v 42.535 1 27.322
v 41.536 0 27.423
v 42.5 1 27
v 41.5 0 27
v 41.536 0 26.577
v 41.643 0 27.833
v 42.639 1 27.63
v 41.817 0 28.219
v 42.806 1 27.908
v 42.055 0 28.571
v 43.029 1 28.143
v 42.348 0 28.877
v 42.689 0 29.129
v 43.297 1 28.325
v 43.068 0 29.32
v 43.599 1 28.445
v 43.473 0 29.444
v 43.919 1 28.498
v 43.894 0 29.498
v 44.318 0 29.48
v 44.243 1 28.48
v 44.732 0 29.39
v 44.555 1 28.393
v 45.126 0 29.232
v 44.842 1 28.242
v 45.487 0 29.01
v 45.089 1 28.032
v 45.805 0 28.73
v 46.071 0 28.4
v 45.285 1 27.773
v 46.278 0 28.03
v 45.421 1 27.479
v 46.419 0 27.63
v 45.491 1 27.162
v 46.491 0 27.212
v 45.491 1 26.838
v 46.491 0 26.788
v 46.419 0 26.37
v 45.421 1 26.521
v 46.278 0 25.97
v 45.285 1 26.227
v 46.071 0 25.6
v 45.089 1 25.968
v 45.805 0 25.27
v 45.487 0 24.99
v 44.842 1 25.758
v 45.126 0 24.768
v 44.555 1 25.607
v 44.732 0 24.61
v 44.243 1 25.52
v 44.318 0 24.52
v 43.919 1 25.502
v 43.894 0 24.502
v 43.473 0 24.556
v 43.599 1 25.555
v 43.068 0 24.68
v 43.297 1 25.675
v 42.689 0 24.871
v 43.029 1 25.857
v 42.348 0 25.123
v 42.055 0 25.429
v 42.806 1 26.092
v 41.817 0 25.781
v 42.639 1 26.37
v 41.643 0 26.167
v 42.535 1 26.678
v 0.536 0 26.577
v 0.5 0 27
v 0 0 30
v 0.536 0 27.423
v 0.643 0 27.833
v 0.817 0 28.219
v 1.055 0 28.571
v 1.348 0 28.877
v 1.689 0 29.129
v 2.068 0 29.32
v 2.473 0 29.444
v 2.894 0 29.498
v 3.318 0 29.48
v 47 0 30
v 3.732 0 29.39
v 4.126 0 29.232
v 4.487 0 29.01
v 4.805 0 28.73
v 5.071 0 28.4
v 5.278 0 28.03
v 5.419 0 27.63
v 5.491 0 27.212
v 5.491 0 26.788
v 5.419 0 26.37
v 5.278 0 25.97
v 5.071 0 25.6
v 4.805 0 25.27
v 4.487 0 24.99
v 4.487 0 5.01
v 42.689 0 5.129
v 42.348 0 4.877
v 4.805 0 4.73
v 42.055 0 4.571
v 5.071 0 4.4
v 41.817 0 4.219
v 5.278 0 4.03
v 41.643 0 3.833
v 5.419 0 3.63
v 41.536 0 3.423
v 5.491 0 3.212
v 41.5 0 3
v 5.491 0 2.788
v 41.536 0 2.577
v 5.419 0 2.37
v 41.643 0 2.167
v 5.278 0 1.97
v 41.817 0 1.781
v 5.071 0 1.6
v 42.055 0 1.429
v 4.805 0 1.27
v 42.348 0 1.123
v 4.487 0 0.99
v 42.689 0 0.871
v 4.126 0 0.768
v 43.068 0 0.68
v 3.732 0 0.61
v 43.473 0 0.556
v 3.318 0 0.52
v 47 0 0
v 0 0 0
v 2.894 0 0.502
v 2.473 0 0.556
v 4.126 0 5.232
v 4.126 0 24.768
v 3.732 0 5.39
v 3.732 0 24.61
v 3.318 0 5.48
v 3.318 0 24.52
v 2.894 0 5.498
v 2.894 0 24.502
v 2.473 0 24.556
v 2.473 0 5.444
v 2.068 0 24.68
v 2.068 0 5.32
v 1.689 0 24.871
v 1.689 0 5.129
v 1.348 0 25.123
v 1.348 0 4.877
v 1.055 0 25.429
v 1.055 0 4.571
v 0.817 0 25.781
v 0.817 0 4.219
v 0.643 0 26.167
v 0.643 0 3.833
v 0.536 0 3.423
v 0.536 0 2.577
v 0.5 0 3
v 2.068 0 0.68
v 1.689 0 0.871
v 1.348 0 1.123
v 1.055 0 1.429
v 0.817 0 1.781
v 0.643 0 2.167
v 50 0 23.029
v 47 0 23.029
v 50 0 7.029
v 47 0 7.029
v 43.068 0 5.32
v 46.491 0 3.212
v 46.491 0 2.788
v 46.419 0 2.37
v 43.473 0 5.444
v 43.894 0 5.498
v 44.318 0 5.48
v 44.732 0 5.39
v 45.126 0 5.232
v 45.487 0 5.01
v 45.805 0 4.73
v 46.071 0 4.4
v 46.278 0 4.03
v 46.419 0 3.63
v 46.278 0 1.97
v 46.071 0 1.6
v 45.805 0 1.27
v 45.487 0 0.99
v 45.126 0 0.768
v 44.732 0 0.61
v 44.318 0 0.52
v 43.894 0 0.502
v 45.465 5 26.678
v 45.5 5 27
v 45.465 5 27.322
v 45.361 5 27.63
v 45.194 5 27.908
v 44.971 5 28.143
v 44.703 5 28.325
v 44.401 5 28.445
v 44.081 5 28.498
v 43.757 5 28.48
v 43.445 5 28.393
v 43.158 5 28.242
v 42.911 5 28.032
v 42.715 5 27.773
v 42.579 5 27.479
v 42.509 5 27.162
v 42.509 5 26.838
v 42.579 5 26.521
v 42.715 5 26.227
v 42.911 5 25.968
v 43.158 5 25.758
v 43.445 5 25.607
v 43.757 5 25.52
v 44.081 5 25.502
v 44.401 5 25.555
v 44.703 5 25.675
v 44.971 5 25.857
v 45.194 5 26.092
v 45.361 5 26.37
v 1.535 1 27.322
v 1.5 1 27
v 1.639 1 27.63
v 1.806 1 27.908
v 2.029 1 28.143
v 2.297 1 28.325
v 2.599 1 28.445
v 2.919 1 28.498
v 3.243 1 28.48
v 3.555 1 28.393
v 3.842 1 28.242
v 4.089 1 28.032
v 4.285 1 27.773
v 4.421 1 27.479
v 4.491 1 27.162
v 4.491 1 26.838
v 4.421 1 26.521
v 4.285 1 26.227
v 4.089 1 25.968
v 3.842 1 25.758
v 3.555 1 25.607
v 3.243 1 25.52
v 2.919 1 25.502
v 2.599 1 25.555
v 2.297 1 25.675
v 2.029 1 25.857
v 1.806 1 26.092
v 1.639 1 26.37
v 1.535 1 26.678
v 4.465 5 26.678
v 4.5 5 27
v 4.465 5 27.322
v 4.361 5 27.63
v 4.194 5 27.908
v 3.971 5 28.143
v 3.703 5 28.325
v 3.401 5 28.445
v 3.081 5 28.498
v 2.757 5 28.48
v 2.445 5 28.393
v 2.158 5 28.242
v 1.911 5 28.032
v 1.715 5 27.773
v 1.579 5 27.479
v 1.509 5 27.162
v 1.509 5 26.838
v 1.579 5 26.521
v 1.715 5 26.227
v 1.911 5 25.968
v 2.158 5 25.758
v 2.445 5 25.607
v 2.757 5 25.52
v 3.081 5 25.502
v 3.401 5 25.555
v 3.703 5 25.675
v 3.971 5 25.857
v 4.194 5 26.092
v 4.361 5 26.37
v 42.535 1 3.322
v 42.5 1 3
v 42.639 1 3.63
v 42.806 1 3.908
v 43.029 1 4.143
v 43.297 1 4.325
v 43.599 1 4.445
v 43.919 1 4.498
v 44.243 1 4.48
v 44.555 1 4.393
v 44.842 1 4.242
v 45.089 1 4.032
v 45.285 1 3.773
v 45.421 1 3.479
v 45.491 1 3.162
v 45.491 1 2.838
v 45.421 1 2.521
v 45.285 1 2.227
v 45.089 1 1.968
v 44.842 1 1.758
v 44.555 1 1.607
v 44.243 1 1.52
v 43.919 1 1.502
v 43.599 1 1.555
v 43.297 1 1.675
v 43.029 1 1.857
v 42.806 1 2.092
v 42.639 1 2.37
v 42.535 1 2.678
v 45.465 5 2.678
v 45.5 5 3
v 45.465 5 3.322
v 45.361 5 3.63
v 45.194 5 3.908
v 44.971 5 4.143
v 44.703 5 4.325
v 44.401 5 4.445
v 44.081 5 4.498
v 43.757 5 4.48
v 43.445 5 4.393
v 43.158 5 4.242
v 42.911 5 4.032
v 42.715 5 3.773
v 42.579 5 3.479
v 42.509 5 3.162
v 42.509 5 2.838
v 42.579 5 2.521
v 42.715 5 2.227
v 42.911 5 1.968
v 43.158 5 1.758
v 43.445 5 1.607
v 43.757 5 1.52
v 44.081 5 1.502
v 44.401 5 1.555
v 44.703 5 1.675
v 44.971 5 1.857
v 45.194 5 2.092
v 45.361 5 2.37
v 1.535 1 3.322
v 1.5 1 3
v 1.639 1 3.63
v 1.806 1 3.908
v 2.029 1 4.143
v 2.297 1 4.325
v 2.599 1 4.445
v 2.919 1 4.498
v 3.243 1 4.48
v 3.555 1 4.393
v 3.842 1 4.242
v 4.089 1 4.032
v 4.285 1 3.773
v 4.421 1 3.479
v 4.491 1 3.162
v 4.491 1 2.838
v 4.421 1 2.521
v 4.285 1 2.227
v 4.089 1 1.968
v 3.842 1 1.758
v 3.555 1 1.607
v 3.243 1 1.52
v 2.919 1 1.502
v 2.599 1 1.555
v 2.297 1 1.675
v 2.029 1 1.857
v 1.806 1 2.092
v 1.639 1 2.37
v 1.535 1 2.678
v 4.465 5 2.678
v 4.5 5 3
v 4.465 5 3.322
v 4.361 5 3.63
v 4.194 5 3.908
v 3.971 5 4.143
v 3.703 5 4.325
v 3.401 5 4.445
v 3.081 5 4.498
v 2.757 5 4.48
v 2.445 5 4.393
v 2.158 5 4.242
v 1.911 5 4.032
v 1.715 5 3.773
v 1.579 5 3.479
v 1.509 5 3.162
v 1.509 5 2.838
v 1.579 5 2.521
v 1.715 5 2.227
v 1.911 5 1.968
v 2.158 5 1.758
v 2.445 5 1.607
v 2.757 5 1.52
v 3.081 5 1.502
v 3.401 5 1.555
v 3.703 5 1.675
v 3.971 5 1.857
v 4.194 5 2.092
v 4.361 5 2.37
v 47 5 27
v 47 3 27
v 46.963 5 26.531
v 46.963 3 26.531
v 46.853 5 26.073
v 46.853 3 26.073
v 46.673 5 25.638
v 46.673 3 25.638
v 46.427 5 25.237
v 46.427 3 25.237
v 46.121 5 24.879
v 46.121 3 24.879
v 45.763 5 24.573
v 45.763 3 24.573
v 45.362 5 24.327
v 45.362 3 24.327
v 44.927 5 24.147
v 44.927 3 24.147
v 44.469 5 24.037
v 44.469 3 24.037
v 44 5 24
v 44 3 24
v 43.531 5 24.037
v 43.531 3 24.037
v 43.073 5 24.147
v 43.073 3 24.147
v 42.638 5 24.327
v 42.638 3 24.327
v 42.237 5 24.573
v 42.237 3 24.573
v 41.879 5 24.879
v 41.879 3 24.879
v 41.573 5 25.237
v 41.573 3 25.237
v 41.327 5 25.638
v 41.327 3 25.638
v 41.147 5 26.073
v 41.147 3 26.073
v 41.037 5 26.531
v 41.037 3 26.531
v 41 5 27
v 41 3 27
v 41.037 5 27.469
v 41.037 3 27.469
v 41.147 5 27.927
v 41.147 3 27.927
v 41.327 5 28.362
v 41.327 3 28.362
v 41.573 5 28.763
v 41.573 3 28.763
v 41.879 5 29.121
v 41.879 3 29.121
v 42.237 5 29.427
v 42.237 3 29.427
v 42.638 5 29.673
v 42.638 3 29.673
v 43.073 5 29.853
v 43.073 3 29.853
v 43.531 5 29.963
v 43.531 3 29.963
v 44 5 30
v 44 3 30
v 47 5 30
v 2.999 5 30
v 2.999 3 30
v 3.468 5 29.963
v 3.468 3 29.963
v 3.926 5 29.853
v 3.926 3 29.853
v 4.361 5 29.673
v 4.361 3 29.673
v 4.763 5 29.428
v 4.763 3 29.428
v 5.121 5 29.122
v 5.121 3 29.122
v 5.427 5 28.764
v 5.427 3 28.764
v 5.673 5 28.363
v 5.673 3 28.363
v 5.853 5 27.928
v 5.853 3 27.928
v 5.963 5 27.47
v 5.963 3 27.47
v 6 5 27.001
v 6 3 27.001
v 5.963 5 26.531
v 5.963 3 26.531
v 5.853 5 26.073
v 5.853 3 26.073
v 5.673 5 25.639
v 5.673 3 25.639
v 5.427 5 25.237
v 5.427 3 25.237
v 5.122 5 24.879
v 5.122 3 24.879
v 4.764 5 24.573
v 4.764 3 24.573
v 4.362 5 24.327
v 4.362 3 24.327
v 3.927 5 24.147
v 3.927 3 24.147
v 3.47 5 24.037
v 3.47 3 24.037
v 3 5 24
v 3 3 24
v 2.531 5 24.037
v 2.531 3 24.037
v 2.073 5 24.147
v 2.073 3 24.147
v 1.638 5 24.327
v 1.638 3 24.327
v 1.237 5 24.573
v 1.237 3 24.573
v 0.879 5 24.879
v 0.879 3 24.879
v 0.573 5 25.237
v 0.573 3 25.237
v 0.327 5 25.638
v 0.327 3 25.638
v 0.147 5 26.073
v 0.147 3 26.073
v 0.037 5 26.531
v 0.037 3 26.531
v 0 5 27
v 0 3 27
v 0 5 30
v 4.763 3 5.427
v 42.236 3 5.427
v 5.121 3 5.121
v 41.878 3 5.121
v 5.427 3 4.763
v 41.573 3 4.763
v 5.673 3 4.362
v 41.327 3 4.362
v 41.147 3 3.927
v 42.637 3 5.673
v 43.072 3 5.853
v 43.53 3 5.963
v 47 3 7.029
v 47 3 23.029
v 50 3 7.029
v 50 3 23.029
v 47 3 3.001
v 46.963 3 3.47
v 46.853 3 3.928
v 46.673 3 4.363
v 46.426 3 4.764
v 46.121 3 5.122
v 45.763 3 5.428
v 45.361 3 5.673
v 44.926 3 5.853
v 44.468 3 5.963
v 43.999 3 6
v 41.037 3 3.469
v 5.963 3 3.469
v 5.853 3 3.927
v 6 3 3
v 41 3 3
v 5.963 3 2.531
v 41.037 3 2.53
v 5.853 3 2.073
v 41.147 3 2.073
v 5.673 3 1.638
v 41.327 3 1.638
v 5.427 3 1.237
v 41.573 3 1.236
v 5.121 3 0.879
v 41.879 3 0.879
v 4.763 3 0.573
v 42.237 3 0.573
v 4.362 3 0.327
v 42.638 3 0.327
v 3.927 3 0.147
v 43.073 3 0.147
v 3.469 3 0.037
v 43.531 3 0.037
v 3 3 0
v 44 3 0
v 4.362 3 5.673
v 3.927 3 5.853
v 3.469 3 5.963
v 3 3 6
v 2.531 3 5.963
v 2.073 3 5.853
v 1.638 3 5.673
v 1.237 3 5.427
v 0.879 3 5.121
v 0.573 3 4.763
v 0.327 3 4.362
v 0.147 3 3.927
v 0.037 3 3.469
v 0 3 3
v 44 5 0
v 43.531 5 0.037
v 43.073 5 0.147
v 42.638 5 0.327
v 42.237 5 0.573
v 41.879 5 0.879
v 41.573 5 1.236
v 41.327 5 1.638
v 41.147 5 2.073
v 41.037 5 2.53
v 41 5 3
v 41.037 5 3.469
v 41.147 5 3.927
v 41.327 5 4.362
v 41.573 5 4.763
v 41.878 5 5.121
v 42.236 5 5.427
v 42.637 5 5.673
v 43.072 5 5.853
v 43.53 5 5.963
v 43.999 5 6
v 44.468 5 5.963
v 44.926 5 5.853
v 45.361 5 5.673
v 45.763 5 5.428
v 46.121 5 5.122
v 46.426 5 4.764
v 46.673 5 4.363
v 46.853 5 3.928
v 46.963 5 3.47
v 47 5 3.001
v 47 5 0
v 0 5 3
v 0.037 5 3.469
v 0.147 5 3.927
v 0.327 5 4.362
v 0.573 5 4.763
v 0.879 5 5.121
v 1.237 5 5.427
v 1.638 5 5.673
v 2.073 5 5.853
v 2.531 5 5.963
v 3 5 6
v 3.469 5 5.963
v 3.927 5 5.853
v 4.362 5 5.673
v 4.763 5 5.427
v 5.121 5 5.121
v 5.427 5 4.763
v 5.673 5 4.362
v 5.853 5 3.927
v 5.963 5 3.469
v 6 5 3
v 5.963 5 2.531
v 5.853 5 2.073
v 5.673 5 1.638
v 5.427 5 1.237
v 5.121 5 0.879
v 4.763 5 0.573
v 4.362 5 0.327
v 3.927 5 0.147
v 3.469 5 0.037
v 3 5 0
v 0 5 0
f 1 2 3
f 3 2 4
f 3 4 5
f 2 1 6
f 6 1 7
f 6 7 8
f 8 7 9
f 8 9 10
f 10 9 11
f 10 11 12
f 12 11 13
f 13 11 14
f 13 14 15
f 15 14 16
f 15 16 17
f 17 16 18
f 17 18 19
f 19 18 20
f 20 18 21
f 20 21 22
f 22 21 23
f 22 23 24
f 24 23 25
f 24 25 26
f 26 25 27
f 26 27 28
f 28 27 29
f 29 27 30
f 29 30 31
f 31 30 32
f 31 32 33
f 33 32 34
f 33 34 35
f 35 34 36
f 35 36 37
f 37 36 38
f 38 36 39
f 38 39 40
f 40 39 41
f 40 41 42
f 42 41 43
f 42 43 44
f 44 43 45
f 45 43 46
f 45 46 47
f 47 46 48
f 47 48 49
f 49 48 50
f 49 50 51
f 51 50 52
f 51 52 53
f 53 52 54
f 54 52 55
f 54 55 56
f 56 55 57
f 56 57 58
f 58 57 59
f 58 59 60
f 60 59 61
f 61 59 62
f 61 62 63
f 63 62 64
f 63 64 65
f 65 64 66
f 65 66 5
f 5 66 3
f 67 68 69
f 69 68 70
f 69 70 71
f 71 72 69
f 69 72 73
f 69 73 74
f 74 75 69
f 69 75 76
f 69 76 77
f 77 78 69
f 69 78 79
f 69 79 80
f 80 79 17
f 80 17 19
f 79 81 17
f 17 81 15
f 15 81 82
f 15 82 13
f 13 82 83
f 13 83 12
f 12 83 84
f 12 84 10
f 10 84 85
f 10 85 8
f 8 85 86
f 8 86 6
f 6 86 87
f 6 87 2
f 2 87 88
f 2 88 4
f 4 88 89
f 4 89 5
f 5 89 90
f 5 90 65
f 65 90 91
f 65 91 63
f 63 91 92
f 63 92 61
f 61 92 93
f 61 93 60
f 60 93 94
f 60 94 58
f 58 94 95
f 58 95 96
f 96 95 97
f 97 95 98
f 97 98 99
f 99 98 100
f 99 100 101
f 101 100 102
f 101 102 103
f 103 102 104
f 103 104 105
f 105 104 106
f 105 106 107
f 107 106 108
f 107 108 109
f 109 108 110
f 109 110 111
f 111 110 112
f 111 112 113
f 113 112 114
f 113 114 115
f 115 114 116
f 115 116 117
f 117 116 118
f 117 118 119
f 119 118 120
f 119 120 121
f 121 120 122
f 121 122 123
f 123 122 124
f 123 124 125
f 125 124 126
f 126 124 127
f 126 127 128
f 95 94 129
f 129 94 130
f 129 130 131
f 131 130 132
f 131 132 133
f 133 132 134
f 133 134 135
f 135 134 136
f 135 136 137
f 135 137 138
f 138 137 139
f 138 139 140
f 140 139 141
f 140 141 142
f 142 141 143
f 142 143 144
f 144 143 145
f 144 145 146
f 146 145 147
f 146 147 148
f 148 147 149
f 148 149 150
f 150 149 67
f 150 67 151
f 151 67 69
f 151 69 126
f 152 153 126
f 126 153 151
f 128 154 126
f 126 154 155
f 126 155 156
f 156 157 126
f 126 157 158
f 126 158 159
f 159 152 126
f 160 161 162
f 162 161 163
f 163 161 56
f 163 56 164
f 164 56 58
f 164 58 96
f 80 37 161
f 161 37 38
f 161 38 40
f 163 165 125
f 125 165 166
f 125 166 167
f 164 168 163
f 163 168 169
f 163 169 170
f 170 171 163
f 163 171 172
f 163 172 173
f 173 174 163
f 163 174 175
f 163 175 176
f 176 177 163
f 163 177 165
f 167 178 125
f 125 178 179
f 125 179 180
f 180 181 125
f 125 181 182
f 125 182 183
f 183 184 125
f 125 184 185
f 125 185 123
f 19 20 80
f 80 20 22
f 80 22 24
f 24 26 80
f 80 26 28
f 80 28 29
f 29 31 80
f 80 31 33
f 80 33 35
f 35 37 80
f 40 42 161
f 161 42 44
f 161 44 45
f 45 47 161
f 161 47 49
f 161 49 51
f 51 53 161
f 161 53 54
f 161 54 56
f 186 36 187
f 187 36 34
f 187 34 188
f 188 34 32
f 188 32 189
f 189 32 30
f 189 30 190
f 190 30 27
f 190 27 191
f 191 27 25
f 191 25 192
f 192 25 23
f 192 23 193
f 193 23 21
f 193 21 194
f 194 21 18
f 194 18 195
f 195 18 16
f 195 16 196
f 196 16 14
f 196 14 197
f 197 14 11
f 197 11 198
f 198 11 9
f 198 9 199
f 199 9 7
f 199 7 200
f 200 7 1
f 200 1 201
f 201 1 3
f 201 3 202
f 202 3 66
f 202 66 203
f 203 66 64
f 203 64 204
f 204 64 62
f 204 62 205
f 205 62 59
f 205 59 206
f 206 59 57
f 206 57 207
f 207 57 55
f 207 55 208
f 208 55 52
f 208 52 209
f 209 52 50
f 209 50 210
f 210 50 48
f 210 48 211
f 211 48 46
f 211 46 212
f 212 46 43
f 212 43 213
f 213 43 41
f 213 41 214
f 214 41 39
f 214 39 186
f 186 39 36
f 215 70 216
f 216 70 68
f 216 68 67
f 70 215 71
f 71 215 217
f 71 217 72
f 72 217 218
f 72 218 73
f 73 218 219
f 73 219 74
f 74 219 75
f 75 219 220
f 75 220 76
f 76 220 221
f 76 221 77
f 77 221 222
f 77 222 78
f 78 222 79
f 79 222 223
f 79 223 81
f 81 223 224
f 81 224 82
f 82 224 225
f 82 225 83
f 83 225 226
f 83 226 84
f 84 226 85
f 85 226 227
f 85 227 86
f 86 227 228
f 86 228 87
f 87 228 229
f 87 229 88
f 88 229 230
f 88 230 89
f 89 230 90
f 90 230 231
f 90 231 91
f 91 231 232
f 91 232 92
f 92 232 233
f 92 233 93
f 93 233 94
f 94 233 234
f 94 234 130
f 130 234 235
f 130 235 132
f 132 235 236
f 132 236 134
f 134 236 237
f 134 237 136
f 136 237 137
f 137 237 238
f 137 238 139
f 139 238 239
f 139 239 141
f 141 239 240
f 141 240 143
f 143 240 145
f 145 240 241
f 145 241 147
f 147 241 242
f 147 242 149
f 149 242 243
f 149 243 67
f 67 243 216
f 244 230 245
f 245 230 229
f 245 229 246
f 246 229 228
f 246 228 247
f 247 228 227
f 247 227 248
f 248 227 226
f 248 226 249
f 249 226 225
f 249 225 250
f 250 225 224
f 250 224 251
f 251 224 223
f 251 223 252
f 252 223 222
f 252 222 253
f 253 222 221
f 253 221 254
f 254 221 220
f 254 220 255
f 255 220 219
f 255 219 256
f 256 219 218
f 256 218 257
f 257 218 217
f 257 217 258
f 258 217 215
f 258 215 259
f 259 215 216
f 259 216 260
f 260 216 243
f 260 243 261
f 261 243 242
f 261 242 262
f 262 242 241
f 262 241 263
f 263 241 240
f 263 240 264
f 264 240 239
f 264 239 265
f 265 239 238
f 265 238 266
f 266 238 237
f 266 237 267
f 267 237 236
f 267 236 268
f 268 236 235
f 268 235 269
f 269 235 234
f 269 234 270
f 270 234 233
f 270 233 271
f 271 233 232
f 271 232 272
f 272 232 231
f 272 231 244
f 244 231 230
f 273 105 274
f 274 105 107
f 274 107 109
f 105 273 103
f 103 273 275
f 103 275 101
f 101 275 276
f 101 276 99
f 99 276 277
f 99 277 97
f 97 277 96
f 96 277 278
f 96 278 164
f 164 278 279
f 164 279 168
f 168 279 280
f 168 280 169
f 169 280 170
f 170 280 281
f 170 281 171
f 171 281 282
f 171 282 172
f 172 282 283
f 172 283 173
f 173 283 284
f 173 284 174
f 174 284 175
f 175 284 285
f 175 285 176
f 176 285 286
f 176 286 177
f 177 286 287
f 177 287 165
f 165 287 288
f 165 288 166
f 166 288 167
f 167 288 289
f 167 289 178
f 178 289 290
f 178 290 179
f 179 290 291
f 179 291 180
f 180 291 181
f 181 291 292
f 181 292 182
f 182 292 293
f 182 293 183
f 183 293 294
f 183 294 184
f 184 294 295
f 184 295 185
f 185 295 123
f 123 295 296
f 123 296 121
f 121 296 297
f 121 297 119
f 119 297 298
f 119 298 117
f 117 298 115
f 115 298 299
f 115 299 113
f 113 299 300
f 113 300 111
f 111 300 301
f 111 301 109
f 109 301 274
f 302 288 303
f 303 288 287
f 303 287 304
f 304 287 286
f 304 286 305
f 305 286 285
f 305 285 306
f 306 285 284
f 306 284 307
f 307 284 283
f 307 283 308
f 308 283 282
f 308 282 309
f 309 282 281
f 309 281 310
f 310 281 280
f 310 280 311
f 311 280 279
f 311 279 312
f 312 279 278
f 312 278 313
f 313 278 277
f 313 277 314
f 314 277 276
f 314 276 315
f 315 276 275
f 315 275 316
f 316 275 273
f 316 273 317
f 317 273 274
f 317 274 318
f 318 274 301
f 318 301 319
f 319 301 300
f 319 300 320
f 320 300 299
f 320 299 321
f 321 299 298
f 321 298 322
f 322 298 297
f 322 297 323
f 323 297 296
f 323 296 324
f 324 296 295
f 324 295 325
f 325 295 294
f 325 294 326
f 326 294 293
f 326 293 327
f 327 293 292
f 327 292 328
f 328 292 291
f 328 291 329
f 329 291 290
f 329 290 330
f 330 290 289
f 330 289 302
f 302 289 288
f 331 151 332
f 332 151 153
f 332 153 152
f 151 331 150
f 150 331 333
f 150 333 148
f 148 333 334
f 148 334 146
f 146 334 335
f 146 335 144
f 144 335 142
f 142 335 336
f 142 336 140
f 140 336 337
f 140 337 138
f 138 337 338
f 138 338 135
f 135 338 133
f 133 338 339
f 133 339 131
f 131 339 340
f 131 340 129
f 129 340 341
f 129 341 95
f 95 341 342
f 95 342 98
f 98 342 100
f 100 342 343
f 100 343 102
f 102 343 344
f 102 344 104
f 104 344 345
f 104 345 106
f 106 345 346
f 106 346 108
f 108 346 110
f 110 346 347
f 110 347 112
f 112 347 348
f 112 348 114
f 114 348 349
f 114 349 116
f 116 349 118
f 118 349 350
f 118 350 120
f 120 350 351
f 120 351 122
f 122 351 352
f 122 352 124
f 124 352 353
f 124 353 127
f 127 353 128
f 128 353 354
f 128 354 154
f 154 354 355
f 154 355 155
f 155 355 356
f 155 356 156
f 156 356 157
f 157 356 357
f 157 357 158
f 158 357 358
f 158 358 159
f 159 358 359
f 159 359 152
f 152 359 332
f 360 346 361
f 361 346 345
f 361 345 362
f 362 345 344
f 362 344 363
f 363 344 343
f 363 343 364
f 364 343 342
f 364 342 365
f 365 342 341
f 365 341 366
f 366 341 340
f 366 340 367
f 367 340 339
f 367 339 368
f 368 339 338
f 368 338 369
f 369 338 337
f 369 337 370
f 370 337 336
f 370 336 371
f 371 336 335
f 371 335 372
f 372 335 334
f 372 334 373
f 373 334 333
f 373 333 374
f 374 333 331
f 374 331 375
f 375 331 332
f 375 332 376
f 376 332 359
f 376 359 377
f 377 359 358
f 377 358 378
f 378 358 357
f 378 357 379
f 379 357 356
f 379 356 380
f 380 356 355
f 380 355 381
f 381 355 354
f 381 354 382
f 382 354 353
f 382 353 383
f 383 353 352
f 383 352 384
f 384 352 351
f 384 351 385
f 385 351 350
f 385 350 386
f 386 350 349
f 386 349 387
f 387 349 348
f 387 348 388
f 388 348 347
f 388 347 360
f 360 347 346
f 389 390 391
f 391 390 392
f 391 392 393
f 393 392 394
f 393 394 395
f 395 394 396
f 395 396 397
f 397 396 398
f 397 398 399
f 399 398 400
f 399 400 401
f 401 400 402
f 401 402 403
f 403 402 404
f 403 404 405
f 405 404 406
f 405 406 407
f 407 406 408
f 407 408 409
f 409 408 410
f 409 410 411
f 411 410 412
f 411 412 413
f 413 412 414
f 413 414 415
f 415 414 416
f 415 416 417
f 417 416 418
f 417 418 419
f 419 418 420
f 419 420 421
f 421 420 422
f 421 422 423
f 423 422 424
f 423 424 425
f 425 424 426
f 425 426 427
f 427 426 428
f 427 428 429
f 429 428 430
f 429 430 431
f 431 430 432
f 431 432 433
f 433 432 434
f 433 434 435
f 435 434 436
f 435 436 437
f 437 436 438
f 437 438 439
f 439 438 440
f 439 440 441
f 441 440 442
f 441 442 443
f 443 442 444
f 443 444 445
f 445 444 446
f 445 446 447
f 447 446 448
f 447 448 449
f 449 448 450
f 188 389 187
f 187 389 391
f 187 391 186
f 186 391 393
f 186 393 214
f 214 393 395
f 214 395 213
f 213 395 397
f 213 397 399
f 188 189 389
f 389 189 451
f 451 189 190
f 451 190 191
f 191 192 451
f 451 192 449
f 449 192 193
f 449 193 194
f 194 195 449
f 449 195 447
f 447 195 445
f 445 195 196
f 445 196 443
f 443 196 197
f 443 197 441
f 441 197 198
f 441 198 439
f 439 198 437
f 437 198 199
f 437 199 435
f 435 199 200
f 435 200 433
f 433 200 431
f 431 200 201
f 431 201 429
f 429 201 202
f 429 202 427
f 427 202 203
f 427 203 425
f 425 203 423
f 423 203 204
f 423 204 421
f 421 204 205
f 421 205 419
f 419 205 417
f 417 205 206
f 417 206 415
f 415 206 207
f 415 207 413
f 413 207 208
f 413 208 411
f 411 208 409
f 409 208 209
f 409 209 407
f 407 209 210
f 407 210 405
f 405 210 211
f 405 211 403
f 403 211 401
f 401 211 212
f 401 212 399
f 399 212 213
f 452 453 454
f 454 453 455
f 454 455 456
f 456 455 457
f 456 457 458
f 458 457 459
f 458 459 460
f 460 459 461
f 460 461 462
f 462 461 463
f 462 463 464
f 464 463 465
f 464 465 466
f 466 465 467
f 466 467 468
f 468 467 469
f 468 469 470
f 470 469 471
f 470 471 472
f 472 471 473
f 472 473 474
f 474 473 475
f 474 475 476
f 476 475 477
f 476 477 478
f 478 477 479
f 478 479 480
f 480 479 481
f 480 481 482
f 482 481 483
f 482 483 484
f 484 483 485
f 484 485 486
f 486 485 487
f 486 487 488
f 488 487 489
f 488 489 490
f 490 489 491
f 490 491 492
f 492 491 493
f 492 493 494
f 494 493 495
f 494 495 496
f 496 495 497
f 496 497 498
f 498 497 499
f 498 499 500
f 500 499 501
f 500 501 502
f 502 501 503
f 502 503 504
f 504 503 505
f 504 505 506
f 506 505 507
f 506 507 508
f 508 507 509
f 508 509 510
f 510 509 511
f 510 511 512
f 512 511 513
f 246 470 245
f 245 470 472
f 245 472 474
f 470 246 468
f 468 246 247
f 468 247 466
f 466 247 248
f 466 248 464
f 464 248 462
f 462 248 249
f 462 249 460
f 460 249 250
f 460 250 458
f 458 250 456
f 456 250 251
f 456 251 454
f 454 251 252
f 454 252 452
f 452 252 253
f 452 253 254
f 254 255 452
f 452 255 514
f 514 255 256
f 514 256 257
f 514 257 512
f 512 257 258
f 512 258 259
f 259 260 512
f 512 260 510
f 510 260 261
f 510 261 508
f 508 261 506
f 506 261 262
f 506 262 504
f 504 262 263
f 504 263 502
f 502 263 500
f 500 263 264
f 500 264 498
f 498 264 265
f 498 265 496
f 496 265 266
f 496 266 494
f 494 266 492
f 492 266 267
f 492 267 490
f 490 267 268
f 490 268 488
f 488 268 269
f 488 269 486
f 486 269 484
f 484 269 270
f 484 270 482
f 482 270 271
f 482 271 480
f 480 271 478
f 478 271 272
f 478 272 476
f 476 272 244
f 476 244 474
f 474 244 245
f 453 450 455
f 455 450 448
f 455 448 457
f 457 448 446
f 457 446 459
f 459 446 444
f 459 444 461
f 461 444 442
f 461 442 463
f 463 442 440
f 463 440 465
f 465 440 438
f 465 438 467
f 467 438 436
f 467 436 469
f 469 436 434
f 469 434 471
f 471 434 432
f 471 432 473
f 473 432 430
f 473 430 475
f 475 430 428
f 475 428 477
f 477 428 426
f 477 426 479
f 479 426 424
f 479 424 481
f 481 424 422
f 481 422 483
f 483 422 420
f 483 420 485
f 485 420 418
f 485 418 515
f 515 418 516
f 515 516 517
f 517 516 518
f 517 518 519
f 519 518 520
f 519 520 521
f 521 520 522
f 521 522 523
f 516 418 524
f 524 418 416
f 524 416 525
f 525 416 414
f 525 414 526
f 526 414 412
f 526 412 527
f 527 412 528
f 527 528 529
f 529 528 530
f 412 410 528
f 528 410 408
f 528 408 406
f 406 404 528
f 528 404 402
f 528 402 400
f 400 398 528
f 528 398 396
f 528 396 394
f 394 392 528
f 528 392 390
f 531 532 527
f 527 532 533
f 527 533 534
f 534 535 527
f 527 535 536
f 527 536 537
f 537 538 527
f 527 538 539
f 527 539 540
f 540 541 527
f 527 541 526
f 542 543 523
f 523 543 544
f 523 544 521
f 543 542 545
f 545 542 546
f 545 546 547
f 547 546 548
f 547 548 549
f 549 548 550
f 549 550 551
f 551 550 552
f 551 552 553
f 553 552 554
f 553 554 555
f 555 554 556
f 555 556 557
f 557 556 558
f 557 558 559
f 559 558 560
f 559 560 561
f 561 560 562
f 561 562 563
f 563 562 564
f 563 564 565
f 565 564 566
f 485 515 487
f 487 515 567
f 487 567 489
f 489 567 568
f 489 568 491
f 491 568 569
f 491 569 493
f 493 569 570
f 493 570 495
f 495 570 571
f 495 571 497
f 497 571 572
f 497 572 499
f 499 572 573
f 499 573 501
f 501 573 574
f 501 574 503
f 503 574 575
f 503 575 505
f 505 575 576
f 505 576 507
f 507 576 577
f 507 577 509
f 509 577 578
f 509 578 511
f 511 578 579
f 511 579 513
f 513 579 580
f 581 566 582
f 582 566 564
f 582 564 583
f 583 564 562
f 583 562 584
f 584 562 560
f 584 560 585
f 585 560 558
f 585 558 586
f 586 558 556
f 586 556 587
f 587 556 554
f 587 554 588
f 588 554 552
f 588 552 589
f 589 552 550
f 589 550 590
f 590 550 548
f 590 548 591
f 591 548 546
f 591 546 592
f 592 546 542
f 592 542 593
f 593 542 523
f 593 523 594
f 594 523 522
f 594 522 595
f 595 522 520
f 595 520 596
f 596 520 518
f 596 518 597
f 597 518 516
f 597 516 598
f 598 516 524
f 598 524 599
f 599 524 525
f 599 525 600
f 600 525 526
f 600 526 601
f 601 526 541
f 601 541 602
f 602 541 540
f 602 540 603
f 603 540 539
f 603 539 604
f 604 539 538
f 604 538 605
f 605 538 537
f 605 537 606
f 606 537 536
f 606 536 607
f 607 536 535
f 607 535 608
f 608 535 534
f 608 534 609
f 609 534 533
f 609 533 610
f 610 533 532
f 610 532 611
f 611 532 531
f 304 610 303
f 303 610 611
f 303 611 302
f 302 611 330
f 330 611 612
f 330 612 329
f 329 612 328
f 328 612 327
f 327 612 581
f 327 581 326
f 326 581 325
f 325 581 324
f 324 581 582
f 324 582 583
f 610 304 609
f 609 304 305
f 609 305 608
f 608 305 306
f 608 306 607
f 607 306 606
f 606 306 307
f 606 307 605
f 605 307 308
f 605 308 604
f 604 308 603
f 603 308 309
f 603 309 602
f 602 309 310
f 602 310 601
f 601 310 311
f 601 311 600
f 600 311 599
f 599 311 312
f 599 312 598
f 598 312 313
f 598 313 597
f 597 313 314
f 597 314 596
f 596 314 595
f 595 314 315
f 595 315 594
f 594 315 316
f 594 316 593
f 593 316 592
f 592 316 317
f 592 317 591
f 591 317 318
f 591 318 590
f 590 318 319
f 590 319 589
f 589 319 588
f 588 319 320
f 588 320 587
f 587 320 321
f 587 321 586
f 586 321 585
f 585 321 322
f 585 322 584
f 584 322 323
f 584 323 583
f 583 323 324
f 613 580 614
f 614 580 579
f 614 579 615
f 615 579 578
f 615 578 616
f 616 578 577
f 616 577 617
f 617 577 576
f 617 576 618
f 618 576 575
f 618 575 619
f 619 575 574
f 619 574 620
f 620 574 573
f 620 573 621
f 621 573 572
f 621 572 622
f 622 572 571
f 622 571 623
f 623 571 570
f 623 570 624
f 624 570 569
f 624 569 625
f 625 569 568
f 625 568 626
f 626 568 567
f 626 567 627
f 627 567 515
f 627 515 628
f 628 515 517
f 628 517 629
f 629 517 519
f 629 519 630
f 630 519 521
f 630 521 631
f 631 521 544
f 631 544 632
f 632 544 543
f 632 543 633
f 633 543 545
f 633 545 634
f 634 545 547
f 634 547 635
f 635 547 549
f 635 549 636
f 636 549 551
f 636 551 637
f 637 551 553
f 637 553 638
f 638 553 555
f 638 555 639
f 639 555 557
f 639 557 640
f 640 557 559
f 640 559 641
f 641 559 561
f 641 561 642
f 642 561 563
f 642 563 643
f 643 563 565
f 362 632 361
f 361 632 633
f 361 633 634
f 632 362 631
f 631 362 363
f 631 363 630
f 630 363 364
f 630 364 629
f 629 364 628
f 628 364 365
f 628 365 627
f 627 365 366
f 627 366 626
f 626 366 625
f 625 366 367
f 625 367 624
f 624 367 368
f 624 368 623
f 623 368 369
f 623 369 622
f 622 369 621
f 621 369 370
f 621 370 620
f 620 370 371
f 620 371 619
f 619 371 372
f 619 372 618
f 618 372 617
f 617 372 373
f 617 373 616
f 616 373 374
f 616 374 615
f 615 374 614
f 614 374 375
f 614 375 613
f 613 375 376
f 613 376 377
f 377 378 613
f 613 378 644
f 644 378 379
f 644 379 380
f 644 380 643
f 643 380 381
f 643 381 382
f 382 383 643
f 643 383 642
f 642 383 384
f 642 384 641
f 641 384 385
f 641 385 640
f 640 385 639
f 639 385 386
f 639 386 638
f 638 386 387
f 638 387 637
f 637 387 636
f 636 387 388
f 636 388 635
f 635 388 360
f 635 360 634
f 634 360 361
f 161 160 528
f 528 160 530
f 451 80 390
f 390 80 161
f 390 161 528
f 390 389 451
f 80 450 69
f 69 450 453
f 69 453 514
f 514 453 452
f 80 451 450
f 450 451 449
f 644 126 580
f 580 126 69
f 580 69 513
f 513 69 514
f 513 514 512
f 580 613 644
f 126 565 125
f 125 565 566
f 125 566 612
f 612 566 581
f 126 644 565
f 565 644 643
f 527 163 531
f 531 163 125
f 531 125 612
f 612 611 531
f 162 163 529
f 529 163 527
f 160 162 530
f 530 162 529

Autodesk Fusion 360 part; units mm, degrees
sketch "Sketch1" plane through (0, 0, 0) normal (0, 1, 0) x (1, 0, 0)
  line L0 (0, 0) -> (47, 0)
  line L1 (47, 0) -> (47, -30)
  line L2 (47, -30) -> (0, -30)
  line L3 (0, -30) -> (0, 0)
  line L4 (47, -7.029) -> (50, -7.029)
  line L5 (50, -7.029) -> (50, -23.029)
  line L6 (50, -23.029) -> (47, -23.029)
  line L7 (47, -23.029) -> (47, -7.029)
  dimension "d1" = 47
  dimension "d2" = 30
  dimension "d3" = 16
extrude "Extrude1" add sketch "Sketch1" along normal blind 3
sketch "Sketch2" plane through (0, 3, 0) normal (0, 1, 0) x (-1, 0, 0)
  line L0 (-50, 23.029) -> (-50, 7.029)
  line L1 (-50, 7.029) -> (-47, 7.029)
  line L2 (-47, 7.029) -> (-47, 0)
  line L3 (-47, 0) -> (0, 0)
  line L4 (0, 0) -> (0, 30)
  line L5 (0, 30) -> (-47, 30)
  line L6 (-47, 30) -> (-47, 23.029)
  line L7 (-47, 23.029) -> (-50, 23.029)
  line L8 (-50, 23.029) -> (-47, 23.029)
  line L9 (-47, 23.029) -> (-47, 7.029)
  line L10 (-47, 7.029) -> (-50, 7.029)
  line L11 (-50, 7.029) -> (-50, 23.029)
  line L12 (-47, 30) -> (0, 30)
  line L13 (0, 30) -> (0, 0)
  line L14 (0, 0) -> (-47, 0)
  line L15 (-47, 0) -> (-47, 30)
  circle A0 centre (-44, 27) radius 3
  circle A1 centre (-3, 27) radius 3
  circle A2 centre (-44, 3) radius 3
  circle A3 centre (-3, 3) radius 3
  circle A4 centre (-3, 3) radius 1.5
  circle A5 centre (-44, 3) radius 1.5
  circle A6 centre (-44, 27) radius 1.5
  circle A7 centre (-3, 27) radius 1.5
  dimension "d6" = 6
  dimension "d7" = 3
  dimension "d8" = 3
  dimension "d9" = 3
extrude "Extrude2" add sketch "Sketch2" along normal blind 2 contours L5 L6 L12 L15 A0 | A0 | L2 L3 L14 L15 A2 | A2 | L4 L5 L12 L13 A1 | A1 | L3 L4 L13 L14 A3 | A3
sketch "Sketch3" plane through (0, 0, 0) normal (0, -1, 0) x (1, 0, 0)
  line L0 (50, 7.029) -> (50, 23.029)
  line L1 (50, 23.029) -> (47, 23.029)
  line L2 (47, 23.029) -> (47, 30)
  line L3 (47, 30) -> (0, 30)
  line L4 (0, 30) -> (0, 0)
  line L5 (0, 0) -> (47, 0)
  line L6 (47, 0) -> (47, 7.029)
  line L7 (47, 7.029) -> (50, 7.029)
  circle A0 centre (3, 27) radius 3
  circle A1 centre (3, 27) radius 1.5
  circle A2 centre (44, 27) radius 3
  circle A3 centre (44, 27) radius 1.5
  circle A4 centre (3, 3) radius 3
  circle A5 centre (3, 3) radius 1.5
  circle A6 centre (44, 3) radius 3
  circle A7 centre (44, 3) radius 1.5
  dimension "d12" = 6
  dimension "d13" = 3
  dimension "d14" = 6
  dimension "d15" = 3
extrude "Extrude3" cut sketch "Sketch3" against normal blind 6 contours A1 | A3 | A5 | A7
chamfer "Chamfer1" distance 1 angle 45 1 edges at (1.6015, 0, 3.5424)
chamfer "Chamfer2" distance 1 angle 45 1 edges at (42.6015, 0, 3.5424)
chamfer "Chamfer3" distance 1 angle 45 1 edges at (1.6015, 0, 27.5424)
chamfer "Chamfer4" distance 1 angle 45 1 edges at (42.6015, 0, 27.5424)
